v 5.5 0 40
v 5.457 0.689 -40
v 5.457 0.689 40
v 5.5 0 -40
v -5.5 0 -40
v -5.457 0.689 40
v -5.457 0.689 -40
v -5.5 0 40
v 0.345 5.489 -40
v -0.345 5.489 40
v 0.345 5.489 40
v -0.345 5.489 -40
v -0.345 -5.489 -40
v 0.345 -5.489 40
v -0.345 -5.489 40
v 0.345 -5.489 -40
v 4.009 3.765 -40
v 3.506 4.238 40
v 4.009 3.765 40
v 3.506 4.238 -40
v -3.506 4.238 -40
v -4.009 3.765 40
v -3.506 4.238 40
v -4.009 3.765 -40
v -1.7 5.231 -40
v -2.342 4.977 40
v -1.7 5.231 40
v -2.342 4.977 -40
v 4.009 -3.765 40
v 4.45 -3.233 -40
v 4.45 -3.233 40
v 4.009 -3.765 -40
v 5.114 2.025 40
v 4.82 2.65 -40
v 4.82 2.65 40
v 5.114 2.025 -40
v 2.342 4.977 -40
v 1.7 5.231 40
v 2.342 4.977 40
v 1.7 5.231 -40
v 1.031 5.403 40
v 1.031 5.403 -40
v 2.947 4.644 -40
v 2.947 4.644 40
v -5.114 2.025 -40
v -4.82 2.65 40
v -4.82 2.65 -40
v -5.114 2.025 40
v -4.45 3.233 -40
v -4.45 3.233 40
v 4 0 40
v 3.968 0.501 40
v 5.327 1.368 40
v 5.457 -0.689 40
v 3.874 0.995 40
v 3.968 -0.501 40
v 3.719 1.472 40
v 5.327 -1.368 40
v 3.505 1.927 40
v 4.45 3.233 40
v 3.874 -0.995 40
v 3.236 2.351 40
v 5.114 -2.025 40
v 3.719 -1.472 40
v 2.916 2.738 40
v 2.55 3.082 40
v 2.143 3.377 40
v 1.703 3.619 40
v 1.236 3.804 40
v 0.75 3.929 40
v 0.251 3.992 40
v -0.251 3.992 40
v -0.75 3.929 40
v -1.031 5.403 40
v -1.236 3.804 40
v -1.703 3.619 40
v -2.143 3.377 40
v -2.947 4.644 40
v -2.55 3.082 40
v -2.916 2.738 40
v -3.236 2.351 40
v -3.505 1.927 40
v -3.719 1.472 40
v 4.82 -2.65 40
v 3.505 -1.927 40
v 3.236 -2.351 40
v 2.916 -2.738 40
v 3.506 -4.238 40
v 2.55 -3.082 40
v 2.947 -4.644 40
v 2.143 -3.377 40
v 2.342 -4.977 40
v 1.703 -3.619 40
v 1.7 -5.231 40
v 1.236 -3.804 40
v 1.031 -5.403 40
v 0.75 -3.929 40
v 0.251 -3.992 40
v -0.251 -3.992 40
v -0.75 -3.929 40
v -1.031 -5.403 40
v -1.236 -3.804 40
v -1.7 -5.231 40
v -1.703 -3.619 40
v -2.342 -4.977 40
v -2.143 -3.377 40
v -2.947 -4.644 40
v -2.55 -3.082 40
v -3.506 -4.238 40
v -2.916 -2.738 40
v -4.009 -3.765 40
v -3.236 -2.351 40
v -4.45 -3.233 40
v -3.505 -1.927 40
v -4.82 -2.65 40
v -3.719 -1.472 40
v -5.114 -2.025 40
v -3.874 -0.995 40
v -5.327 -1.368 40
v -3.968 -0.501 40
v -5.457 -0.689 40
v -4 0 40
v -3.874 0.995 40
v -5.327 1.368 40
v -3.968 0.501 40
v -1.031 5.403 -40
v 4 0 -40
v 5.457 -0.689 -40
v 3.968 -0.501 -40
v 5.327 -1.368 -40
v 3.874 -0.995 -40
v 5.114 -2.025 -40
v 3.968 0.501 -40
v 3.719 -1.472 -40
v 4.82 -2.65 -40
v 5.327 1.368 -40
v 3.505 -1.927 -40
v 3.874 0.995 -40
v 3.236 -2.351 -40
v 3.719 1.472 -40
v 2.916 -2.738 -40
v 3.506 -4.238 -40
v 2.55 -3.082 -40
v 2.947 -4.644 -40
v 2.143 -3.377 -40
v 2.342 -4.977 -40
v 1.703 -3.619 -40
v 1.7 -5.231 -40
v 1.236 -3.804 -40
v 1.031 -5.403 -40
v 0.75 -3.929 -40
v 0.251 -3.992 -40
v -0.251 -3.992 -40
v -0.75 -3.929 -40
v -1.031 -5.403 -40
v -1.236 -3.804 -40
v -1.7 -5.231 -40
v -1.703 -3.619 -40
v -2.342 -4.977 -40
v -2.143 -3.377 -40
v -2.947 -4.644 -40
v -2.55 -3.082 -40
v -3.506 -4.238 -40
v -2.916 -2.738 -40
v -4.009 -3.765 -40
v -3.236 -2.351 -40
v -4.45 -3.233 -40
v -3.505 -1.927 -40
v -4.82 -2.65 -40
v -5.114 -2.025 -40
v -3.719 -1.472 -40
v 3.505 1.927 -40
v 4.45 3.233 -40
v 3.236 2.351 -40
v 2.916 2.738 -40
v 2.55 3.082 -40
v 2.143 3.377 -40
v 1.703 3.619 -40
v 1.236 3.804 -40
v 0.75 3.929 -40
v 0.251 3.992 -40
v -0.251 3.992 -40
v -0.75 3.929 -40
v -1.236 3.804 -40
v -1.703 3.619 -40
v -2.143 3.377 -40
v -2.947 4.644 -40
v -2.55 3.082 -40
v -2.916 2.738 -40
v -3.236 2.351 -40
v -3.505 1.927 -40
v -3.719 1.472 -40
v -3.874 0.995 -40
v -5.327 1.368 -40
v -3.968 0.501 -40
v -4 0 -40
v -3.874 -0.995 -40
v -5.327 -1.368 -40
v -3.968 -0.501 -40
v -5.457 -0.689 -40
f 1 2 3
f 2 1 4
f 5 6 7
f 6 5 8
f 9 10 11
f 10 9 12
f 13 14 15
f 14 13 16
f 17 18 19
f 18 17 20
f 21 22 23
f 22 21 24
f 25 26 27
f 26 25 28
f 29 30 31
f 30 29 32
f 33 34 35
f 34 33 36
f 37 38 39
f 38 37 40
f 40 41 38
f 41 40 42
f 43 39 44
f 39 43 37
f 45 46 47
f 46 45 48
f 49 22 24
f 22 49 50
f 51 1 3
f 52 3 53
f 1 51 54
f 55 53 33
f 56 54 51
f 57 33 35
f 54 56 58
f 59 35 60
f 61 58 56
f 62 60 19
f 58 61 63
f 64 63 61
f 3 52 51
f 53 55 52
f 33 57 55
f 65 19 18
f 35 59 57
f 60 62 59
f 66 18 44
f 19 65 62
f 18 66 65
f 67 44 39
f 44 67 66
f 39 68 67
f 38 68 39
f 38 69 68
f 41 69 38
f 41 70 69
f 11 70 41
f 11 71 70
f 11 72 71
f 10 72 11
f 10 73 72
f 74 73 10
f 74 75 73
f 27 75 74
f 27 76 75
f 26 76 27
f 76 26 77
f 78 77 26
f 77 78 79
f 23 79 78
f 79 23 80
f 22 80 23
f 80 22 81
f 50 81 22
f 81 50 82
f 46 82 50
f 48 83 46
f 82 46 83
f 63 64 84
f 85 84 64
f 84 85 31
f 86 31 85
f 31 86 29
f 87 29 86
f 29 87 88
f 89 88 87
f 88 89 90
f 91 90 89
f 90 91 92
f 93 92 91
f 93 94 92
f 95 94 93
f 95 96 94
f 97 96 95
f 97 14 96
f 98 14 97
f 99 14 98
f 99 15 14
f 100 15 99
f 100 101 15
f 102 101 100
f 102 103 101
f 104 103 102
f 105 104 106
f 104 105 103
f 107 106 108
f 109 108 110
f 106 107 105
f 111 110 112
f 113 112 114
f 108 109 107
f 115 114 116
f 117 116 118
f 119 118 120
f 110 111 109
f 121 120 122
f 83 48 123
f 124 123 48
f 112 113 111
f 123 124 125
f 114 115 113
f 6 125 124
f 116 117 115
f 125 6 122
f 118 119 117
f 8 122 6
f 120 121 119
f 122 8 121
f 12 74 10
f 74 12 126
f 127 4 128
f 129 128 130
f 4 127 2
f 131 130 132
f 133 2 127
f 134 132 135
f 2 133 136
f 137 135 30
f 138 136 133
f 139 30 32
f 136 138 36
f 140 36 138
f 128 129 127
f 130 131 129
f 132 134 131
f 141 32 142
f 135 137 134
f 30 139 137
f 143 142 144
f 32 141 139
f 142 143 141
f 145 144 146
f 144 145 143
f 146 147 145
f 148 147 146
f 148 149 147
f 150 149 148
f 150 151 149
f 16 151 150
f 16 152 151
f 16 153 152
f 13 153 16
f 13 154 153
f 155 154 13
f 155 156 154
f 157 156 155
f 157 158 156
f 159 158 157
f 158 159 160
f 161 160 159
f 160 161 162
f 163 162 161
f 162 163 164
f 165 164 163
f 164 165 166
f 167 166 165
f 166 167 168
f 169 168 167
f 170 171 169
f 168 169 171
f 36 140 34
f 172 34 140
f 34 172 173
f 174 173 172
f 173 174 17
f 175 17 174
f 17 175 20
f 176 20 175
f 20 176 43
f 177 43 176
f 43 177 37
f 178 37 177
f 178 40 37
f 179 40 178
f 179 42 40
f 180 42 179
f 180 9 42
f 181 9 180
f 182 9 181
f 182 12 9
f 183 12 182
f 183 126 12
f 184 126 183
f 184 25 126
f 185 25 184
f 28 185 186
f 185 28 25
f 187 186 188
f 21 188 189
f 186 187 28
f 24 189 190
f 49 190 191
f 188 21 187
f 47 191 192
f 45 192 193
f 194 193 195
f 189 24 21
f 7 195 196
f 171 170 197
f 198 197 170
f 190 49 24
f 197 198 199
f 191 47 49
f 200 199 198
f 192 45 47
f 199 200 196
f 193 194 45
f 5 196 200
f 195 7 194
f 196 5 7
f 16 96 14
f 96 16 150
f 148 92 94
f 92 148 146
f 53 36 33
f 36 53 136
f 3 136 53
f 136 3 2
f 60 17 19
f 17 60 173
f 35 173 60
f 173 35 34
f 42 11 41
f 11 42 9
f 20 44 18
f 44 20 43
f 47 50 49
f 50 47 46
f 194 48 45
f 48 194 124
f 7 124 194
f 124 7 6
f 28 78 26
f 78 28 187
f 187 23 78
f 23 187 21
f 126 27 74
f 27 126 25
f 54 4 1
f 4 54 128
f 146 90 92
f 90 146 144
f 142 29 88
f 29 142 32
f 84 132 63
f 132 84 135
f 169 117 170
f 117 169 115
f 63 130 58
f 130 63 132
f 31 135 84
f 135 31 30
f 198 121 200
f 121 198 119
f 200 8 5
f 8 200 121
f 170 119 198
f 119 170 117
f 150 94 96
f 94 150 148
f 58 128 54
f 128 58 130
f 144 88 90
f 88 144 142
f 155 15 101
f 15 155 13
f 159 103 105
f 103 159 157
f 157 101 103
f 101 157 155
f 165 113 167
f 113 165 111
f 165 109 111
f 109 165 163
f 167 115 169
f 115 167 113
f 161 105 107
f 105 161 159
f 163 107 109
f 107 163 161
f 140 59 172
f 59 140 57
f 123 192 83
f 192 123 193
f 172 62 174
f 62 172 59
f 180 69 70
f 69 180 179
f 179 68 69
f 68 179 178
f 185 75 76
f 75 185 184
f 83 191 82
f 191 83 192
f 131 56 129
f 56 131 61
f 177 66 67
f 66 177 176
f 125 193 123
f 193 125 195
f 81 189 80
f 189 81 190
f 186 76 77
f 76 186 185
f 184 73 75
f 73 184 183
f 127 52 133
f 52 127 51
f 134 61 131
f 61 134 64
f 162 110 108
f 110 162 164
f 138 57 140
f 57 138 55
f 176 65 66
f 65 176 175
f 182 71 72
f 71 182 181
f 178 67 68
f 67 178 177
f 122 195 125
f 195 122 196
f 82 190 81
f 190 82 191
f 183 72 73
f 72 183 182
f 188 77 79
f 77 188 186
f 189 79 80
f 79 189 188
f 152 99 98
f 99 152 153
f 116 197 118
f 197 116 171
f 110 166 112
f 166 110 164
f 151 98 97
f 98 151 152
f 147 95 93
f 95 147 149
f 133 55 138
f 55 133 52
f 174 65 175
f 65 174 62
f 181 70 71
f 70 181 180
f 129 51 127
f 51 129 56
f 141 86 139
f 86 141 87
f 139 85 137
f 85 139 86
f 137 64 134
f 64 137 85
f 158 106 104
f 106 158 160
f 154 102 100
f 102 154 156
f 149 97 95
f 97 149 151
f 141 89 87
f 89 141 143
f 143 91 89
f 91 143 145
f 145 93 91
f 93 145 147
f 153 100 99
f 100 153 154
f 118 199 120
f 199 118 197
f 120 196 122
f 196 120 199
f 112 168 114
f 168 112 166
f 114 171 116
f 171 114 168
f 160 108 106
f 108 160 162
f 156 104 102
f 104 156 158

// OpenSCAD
$fn = 50;


difference() {
	union() {
		translate(v = [0, 0, -40.0000000000]) {
			cylinder(h = 80, r = 5.5000000000);
		}
	}
	union() {
		translate(v = [0, 0, -100.0000000000]) {
			cylinder(h = 200, r = 4.0000000000);
		}
	}
}
